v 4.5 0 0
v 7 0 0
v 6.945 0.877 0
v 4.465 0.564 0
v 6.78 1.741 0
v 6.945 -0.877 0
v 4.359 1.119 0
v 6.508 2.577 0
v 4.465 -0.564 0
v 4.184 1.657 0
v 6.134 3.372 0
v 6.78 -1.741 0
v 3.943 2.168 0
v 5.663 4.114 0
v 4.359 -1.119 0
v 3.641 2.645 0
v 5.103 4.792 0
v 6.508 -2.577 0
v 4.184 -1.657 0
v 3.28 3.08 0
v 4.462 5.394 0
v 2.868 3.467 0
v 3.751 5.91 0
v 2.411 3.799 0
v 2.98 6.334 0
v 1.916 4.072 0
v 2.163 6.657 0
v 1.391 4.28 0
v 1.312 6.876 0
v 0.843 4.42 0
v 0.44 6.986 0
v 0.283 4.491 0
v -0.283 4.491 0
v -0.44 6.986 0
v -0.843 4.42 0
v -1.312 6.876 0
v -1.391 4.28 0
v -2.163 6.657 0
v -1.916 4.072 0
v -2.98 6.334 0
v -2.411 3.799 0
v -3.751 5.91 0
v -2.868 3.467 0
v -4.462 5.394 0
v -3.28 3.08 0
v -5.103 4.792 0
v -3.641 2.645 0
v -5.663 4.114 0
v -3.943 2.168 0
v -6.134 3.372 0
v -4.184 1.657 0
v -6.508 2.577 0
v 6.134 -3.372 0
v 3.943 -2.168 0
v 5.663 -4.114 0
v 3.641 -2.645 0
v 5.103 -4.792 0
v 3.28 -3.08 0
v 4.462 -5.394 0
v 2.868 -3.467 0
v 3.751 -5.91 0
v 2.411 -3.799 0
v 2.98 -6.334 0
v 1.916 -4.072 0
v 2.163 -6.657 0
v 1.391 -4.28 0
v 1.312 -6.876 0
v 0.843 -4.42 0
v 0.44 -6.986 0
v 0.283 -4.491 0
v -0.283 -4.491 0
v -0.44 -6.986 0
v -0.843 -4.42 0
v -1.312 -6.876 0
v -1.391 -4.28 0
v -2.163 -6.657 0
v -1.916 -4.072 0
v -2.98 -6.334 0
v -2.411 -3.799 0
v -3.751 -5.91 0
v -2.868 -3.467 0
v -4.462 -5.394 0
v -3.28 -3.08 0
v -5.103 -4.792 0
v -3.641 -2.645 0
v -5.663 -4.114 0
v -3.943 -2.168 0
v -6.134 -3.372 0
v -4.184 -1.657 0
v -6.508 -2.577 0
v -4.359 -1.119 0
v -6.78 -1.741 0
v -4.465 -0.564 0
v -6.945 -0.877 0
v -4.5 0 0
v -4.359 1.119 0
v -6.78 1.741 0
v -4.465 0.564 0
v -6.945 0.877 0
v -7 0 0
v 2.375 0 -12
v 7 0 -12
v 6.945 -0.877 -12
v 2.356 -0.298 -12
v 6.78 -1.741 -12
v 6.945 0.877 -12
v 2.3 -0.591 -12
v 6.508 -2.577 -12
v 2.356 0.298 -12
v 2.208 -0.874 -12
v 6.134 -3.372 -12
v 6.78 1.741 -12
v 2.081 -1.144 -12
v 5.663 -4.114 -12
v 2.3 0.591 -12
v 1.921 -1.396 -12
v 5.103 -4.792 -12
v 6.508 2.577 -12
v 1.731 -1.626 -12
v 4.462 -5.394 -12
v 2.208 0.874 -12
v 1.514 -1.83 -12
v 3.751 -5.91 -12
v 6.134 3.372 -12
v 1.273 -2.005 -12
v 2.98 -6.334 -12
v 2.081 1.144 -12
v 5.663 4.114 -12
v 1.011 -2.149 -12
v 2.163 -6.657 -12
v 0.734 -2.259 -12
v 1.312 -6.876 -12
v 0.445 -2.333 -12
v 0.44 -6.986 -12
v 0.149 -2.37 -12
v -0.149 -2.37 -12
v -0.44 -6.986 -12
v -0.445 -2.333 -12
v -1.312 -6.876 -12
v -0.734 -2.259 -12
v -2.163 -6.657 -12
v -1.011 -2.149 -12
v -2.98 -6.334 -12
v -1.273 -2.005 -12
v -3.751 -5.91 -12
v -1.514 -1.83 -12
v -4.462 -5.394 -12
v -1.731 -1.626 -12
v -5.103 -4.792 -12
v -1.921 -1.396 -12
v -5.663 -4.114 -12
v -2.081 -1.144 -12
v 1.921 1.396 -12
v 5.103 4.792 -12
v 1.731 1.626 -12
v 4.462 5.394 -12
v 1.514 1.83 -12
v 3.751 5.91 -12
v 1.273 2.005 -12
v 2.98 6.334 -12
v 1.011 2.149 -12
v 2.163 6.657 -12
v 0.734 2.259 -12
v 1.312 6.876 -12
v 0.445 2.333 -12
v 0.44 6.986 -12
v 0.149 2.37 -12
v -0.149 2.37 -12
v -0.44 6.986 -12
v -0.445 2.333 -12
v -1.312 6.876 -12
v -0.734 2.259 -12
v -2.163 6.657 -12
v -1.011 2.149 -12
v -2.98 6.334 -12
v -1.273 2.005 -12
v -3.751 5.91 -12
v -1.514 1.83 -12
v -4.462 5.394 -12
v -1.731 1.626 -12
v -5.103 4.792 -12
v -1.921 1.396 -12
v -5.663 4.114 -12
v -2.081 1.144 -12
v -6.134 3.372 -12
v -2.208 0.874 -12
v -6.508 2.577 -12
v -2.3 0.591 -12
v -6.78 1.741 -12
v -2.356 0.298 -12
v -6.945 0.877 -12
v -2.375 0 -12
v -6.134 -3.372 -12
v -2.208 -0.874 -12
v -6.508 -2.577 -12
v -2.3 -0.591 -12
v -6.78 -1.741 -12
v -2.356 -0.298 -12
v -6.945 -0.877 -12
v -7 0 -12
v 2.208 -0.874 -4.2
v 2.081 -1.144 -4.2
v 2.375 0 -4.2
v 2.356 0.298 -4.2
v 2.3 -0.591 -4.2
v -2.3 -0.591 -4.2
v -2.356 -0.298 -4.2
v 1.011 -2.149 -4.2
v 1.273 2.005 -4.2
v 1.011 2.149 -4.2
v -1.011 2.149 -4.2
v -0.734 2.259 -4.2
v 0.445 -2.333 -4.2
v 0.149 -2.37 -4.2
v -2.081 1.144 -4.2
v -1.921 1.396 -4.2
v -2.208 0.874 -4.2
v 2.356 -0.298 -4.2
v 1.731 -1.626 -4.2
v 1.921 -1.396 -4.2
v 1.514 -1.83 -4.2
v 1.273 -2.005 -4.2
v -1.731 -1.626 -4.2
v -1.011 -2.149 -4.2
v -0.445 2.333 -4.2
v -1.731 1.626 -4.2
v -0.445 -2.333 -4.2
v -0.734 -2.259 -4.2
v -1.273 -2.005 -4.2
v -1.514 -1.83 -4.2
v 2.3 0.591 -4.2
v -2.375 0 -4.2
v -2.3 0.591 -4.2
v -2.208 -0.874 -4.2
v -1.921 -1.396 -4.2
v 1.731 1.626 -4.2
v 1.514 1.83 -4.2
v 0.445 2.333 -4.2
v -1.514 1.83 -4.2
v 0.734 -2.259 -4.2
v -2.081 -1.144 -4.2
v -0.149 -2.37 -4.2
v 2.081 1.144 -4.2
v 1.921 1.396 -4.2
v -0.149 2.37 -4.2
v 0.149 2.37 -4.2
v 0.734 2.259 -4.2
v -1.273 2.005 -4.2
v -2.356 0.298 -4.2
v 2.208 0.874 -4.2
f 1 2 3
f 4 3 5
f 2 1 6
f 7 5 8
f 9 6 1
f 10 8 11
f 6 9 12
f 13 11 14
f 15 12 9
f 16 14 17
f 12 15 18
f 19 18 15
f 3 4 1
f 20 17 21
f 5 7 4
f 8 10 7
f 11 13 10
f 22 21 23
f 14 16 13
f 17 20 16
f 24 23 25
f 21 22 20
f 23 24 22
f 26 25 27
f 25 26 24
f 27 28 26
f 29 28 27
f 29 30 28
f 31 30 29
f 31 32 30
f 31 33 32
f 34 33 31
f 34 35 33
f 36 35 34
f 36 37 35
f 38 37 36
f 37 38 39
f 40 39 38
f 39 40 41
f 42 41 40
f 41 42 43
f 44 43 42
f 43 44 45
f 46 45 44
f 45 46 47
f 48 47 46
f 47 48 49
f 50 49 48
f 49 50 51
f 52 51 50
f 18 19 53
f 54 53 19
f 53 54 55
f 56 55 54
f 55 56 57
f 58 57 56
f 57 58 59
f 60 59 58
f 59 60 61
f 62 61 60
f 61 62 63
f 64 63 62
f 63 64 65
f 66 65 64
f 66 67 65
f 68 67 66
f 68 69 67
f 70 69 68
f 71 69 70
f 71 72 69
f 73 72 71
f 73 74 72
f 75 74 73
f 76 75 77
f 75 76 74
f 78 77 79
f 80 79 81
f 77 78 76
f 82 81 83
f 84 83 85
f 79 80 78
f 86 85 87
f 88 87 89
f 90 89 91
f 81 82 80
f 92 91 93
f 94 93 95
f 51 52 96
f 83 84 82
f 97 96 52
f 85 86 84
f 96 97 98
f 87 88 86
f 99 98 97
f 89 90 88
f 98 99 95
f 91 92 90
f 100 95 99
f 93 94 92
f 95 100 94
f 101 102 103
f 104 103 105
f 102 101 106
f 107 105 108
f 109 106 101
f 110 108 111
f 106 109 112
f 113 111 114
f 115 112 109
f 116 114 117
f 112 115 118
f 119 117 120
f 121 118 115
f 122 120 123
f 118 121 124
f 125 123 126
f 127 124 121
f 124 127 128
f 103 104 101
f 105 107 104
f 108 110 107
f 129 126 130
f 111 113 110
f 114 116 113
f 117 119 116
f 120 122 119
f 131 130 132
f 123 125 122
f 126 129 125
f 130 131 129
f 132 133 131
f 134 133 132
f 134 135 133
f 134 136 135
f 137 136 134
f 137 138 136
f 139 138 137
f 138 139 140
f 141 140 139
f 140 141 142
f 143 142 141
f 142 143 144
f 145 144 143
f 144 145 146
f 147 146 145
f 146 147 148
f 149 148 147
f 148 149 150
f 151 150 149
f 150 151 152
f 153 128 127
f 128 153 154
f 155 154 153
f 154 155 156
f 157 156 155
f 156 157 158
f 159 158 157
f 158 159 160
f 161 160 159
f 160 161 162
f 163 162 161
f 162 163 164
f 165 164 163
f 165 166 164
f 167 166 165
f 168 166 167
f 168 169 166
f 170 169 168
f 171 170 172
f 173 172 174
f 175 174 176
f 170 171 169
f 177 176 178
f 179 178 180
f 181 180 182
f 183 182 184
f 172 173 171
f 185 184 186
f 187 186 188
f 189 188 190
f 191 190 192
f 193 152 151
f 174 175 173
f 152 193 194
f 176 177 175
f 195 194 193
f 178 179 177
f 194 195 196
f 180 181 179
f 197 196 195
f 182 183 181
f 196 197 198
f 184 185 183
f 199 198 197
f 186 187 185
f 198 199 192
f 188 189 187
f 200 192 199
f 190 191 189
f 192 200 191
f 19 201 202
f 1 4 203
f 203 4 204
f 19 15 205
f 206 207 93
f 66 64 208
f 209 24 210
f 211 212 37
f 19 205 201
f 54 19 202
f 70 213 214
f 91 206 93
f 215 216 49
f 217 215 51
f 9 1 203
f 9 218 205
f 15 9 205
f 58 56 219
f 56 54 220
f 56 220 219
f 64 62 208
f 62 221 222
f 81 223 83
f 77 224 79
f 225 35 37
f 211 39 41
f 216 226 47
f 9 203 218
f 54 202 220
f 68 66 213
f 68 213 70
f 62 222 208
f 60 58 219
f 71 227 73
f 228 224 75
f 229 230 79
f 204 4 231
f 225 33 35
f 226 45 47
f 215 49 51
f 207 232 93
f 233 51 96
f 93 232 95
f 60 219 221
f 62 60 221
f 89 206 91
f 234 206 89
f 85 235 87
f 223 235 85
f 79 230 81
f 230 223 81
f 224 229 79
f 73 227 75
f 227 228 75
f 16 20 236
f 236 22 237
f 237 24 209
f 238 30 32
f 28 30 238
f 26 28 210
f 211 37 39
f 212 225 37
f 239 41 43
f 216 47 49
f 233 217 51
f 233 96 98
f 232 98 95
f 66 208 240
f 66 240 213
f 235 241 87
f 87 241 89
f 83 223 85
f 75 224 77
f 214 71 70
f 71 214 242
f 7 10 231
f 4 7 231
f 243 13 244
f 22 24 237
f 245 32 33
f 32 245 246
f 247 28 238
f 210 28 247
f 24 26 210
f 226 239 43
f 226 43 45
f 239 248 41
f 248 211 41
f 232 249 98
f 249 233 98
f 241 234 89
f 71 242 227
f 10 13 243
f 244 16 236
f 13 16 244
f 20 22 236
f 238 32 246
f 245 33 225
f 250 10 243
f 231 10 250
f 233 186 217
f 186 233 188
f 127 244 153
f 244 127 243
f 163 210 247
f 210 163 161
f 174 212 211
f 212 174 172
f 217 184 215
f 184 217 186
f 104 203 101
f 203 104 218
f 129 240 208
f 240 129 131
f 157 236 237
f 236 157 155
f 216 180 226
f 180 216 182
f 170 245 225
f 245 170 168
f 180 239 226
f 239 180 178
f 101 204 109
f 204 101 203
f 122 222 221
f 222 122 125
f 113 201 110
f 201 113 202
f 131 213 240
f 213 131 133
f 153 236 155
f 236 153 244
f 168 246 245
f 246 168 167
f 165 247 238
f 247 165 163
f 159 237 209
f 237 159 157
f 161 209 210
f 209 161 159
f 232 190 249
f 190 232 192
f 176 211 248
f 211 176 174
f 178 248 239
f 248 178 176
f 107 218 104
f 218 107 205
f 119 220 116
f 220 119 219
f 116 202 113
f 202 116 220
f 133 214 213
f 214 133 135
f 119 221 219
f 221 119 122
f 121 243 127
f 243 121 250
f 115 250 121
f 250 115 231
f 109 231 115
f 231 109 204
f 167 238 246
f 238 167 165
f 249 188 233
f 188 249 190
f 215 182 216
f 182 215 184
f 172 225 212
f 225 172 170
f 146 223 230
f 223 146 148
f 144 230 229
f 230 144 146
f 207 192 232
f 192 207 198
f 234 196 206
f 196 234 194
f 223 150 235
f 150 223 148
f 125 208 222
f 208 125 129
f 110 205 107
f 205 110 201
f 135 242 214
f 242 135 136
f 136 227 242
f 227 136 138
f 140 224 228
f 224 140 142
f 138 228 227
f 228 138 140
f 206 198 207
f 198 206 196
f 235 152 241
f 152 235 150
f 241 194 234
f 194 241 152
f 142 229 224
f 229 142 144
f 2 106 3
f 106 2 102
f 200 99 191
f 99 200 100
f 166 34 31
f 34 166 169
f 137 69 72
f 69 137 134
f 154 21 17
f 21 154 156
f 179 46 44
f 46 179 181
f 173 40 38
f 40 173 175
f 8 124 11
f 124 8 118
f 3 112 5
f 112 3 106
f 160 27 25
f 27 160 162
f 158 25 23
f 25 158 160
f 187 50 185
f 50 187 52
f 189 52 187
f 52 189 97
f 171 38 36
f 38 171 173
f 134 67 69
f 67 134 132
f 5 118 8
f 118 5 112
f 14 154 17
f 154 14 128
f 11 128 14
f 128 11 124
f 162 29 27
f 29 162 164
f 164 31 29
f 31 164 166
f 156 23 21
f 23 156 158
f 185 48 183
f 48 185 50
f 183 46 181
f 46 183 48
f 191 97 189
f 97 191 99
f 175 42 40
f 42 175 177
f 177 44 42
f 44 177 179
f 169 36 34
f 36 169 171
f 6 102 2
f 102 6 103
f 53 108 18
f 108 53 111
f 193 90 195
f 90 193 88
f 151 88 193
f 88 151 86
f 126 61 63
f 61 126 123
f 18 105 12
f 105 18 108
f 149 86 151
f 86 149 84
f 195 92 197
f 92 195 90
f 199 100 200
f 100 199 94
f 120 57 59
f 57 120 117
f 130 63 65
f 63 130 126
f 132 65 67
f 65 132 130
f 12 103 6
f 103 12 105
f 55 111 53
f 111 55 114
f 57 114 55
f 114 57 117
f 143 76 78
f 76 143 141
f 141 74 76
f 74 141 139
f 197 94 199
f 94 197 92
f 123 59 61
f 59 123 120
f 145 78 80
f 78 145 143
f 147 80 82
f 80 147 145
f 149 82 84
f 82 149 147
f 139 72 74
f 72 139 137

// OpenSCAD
$fn = 50;


difference() {
	union() {
		translate(v = [0, 0, -12.0000000000]) {
			cylinder(h = 12, r = 7.0000000000);
		}
	}
	union() {
		translate(v = [0, 0, 0]) {
			rotate(a = [0, 0, 0]) {
				difference() {
					union() {
						#translate(v = [0, 0, -12.0000000000]) {
							cylinder(h = 12, r = 2.2500000000);
						}
						#translate(v = [0, 0, -4.2000000000]) {
							cylinder(h = 4.2000000000, r = 7.0000000000, r1 = 2.3750000000, r2 = 4.5000000000);
						}
						#translate(v = [0, 0, -12.0000000000]) {
							cylinder(h = 12, r = 2.3750000000);
						}
						#translate(v = [0, 0, -12.0000000000]) {
							cylinder(h = 12, r = 2.2500000000);
						}
					}
					union();
				}
			}
		}
	}
}
